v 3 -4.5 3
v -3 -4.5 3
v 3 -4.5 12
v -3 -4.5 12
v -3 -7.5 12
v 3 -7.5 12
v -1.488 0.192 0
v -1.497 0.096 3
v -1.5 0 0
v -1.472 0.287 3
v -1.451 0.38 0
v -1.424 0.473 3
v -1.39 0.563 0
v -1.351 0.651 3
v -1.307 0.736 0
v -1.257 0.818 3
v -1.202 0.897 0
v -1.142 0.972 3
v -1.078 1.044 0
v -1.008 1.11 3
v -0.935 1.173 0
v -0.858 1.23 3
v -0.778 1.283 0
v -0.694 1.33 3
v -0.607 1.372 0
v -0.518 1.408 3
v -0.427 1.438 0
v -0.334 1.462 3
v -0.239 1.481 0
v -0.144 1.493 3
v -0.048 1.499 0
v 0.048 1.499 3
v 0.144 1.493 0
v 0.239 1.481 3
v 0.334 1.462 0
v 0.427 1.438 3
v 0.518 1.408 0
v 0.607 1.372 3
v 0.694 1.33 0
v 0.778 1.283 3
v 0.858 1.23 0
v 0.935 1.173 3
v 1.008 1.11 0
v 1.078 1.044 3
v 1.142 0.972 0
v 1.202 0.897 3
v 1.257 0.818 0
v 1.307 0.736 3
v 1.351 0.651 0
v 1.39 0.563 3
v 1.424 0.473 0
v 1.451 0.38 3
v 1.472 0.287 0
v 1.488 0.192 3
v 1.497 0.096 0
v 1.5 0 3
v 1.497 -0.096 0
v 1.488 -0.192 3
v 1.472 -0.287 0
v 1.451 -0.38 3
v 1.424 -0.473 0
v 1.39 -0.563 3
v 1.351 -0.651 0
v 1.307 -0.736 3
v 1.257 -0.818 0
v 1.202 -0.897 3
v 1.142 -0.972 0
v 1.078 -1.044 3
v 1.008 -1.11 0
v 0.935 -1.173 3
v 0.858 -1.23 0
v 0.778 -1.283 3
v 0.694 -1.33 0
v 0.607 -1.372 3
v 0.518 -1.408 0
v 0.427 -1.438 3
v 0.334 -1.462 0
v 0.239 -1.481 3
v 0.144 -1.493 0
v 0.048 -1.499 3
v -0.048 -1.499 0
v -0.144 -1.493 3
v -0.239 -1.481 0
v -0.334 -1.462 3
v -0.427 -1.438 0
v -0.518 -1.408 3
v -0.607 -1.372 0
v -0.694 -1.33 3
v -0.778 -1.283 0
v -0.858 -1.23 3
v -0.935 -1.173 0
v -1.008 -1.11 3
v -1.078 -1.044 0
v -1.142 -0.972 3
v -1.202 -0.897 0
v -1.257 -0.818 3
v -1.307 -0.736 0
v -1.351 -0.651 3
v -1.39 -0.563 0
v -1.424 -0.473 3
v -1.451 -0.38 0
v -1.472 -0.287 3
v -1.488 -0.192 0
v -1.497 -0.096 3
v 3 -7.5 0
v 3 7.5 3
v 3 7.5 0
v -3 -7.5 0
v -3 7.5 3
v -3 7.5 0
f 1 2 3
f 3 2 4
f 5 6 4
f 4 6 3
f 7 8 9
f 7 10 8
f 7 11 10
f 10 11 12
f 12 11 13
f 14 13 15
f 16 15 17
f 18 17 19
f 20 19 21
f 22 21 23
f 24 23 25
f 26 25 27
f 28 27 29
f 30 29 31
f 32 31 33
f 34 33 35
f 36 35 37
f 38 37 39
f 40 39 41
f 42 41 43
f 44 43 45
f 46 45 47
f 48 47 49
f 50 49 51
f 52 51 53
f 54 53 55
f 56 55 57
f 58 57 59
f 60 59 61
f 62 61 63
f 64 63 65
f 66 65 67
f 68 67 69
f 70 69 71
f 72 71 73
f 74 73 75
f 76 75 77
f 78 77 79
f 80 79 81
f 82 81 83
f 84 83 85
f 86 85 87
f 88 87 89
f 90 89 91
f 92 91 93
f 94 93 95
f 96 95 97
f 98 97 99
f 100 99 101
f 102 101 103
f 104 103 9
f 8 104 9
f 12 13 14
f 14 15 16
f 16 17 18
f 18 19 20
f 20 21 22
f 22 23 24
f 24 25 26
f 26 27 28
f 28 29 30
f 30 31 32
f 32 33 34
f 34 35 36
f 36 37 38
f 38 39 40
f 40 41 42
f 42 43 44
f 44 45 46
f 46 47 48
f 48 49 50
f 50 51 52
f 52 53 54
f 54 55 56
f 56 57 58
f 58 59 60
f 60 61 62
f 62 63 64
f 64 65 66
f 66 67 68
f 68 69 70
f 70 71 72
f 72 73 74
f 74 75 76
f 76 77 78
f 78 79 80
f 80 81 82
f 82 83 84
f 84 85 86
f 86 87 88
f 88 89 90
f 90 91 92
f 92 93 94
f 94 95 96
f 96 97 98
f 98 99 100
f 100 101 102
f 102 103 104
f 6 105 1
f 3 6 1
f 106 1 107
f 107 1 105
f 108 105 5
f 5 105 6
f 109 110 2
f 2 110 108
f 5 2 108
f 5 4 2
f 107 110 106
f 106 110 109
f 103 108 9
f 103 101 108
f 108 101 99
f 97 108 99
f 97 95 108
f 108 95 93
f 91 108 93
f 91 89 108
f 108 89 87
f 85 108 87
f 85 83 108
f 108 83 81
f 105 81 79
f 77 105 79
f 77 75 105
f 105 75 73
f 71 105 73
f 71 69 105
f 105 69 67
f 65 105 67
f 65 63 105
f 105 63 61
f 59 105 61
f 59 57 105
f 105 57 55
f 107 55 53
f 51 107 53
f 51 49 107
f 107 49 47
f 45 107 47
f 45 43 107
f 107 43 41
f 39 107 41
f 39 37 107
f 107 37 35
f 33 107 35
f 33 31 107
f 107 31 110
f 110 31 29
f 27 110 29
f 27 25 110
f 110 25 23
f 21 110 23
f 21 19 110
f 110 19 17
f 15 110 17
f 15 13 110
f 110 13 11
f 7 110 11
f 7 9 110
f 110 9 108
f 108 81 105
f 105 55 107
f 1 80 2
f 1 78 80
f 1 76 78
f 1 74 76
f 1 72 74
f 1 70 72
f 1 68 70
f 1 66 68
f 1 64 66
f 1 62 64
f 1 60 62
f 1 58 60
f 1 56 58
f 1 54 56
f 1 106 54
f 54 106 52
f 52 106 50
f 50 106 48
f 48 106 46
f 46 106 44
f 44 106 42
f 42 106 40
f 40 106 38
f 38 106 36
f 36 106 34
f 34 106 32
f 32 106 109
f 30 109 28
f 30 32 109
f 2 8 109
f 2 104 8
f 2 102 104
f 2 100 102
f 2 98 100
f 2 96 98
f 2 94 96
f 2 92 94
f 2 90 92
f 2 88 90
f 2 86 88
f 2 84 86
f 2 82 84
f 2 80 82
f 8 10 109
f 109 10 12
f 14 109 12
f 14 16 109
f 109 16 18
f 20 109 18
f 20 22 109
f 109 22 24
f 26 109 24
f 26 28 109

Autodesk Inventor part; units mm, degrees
ref_plane "YZ Plane" through (0, 0, 0) normal (1, 0, 0) x (0, 1, 0)
ref_plane "XZ Plane" through (0, 0, 0) normal (0, 1, 0) x (-1, 0, 0)
ref_plane "XY Plane" through (0, 0, 0) normal (0, 0, 1) x (1, 0, 0)
sketch "Эскиз1" plane through (0, 0, 0) normal (0, 0, 1) x (1, 0, 0)
  line L0 (-3, 7.5) -> (3, 7.5)
  line L1 (3, 7.5) -> (3, -7.5)
  line L2 (3, -7.5) -> (-3, -7.5)
  line L3 (-3, -7.5) -> (-3, 7.5)
  point P0 (0, 0)
  point P1 (3, 0)
  point P2 (0, 7.5)
  dimension "d0" = 6
  dimension "d1" = 15
extrude "Выдавливание1" add sketch "Эскиз1" along normal blind 3
sketch "Эскиз2" plane through (0, 0, 3) normal (0, 0, 1) x (1, 0, 0)
  line L0 (3, 7.5) -> (-3, 7.5) projected
  point P0 (0, 0)
  point P1 (0, 0)
  dimension "d4" = 7.5
hole "Отверстие1" at (0, 0, 3) direction (0, 0, -1) diameter 3 end through all
sketch "Эскиз3" plane through (0, 0, 3) normal (0, 0, 1) x (1, 0, 0)
  line L0 (3, -7.5) -> (3, 7.5) projected
  line L1 (-3, -7.5) -> (3, -7.5)
  line L2 (3, -7.5) -> (3, -4.5)
  line L3 (3, -4.5) -> (-3, -4.5)
  line L4 (-3, -4.5) -> (-3, -7.5)
  dimension "d12" = 3
extrude "Выдавливание2" add sketch "Эскиз3" along normal blind 9
properties part number "Угловой_крепеж"
